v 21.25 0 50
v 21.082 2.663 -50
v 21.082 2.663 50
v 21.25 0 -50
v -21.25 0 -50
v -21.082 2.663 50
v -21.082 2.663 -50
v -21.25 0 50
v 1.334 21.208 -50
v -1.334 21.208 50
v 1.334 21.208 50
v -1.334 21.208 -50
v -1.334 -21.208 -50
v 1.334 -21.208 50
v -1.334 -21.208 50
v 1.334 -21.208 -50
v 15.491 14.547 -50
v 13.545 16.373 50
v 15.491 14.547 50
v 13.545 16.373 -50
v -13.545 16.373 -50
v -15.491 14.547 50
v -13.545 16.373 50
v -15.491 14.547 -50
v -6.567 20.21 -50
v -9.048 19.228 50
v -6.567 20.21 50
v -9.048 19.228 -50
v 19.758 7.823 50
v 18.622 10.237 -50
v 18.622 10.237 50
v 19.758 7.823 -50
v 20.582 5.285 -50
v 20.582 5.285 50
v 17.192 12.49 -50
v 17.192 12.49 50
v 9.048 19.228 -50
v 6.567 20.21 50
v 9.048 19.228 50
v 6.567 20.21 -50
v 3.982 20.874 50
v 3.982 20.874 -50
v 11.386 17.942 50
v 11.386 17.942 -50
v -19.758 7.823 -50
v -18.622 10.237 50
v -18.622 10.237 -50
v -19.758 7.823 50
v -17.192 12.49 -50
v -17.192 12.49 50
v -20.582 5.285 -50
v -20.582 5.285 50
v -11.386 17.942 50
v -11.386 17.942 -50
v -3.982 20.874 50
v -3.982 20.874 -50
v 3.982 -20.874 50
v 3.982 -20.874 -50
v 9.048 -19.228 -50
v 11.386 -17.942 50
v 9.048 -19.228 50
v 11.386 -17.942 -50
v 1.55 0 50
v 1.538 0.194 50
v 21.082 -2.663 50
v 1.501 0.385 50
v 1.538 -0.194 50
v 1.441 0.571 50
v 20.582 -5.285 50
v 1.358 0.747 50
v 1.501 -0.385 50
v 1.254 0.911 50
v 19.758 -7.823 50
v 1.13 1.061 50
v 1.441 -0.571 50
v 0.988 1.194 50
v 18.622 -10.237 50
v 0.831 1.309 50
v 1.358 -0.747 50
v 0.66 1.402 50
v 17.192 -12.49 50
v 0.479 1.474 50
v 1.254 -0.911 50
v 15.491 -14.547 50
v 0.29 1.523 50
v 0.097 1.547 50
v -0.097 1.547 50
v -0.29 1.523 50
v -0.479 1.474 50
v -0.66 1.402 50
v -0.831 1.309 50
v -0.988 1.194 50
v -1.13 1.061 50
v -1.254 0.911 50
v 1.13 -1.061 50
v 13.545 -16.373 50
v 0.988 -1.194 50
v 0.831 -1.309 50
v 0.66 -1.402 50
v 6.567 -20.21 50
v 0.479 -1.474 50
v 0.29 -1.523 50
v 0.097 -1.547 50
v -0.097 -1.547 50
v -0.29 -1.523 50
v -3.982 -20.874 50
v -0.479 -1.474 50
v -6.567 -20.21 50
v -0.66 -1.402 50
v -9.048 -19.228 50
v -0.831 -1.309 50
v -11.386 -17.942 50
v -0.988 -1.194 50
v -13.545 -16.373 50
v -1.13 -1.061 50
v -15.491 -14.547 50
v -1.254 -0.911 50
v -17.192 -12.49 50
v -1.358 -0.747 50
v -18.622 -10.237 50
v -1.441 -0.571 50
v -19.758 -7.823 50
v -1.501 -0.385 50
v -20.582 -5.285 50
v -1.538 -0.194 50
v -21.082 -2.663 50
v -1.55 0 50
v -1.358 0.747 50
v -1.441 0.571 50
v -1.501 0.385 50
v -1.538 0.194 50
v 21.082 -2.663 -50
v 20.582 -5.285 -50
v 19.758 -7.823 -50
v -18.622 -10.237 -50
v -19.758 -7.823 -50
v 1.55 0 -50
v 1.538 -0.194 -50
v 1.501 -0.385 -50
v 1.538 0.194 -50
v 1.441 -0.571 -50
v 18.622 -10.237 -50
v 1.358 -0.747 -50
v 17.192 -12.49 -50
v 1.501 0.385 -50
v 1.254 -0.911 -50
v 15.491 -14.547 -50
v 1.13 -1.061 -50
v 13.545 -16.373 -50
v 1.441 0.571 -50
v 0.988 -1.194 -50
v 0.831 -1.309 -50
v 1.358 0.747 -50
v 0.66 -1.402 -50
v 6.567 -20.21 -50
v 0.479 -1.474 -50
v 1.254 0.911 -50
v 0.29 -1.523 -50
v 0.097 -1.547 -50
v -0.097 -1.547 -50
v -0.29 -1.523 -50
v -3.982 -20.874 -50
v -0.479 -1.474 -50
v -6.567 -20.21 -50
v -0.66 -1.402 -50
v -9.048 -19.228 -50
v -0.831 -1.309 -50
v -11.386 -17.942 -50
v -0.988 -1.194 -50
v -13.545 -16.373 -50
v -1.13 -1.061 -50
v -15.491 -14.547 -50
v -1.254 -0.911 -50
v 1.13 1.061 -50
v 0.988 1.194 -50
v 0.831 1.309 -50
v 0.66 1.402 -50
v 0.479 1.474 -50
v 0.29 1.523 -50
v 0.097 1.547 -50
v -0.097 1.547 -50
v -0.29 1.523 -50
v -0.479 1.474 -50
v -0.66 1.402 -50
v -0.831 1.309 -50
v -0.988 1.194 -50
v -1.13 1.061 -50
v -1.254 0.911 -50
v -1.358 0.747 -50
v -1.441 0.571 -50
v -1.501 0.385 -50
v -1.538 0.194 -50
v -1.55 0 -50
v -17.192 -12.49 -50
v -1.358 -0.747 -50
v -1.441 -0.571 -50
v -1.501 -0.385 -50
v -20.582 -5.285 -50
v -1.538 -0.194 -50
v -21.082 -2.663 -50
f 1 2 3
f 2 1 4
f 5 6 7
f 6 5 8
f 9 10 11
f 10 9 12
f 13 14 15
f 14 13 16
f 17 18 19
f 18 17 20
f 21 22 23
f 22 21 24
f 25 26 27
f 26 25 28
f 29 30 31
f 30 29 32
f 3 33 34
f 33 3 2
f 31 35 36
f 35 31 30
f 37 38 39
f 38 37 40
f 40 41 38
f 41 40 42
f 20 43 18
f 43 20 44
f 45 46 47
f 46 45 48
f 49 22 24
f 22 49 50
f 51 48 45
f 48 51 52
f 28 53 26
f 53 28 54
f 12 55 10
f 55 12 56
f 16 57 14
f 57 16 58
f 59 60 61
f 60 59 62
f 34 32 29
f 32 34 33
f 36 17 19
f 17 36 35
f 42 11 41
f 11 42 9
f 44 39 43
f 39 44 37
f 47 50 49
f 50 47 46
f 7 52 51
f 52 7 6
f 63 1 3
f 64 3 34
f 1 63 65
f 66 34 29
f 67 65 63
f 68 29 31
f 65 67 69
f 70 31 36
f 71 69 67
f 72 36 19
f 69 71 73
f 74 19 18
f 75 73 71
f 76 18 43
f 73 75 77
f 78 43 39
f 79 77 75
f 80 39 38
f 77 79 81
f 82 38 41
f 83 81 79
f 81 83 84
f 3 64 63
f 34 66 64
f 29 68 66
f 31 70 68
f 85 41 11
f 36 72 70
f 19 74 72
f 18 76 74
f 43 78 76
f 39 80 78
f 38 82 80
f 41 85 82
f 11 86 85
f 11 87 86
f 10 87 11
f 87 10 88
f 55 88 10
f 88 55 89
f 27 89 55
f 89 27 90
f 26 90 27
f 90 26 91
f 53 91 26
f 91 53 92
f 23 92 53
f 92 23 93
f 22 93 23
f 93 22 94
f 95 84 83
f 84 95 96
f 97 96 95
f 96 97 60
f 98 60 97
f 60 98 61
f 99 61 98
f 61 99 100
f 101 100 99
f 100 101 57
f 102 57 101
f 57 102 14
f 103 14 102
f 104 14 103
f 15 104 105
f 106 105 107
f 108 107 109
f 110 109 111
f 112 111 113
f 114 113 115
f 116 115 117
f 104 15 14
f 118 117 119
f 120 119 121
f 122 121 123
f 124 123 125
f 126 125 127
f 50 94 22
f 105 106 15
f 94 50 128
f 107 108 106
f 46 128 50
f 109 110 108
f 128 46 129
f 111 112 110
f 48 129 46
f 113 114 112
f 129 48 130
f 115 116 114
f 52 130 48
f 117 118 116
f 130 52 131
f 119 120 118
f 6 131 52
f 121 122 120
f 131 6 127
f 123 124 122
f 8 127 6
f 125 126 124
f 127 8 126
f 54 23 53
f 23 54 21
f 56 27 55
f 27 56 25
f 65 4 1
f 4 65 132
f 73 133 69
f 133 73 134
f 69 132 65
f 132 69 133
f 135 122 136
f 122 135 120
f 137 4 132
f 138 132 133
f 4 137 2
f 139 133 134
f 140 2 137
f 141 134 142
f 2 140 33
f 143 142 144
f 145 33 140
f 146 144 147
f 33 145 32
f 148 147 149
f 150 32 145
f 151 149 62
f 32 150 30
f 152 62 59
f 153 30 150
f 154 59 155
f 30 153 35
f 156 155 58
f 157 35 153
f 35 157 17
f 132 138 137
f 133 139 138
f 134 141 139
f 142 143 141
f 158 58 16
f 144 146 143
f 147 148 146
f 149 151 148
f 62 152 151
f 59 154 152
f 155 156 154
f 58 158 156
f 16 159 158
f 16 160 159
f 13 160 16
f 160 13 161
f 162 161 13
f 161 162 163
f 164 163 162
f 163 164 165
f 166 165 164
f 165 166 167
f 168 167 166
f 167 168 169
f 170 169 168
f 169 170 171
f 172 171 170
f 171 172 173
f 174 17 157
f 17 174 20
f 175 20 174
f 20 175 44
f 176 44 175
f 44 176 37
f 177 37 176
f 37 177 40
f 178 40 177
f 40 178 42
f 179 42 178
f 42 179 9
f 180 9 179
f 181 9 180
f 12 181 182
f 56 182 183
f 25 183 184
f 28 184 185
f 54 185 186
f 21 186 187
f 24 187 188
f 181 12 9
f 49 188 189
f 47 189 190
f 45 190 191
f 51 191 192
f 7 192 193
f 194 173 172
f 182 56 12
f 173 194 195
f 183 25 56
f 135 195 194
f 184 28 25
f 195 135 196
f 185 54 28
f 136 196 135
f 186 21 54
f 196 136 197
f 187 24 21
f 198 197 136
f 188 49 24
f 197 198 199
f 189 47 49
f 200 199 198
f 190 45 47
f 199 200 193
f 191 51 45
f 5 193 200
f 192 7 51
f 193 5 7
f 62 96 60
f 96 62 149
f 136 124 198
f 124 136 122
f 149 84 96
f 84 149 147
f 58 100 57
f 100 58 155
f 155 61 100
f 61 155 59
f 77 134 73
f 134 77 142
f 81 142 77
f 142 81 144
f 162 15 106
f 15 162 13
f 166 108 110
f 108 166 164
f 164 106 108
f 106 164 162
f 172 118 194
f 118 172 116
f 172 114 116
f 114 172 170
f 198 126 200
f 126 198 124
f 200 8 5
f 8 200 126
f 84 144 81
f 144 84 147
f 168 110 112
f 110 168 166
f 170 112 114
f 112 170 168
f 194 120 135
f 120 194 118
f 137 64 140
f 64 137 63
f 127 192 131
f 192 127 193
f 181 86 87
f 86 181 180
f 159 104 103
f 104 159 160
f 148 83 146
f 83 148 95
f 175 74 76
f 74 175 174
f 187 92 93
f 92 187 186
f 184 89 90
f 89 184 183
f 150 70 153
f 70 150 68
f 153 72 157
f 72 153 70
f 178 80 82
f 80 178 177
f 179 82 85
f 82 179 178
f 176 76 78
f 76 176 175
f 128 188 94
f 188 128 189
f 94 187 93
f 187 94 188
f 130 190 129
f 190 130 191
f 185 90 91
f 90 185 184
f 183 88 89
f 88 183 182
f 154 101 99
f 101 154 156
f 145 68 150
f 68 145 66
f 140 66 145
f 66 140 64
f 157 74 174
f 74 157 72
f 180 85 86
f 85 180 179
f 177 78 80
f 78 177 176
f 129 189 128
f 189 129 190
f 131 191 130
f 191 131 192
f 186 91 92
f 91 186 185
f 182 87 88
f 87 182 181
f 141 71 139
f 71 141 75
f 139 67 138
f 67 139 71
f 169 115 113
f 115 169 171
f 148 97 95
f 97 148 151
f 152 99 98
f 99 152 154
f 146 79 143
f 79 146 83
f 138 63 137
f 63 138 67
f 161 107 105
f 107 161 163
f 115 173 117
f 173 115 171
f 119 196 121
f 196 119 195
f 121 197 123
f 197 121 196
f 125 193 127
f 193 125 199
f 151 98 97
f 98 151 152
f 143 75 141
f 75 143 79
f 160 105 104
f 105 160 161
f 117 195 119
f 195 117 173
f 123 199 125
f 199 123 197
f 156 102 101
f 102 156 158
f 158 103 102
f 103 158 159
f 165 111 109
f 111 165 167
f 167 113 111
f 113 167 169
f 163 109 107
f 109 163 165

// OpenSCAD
$fn = 50;


difference() {
	union() {
		translate(v = [0, 0, -50.0000000000]) {
			cylinder(h = 100, r = 21.2500000000);
		}
	}
	union() {
		translate(v = [0, 0, -100.0000000000]) {
			cylinder(h = 200, r = 1.5500000000);
		}
	}
}
